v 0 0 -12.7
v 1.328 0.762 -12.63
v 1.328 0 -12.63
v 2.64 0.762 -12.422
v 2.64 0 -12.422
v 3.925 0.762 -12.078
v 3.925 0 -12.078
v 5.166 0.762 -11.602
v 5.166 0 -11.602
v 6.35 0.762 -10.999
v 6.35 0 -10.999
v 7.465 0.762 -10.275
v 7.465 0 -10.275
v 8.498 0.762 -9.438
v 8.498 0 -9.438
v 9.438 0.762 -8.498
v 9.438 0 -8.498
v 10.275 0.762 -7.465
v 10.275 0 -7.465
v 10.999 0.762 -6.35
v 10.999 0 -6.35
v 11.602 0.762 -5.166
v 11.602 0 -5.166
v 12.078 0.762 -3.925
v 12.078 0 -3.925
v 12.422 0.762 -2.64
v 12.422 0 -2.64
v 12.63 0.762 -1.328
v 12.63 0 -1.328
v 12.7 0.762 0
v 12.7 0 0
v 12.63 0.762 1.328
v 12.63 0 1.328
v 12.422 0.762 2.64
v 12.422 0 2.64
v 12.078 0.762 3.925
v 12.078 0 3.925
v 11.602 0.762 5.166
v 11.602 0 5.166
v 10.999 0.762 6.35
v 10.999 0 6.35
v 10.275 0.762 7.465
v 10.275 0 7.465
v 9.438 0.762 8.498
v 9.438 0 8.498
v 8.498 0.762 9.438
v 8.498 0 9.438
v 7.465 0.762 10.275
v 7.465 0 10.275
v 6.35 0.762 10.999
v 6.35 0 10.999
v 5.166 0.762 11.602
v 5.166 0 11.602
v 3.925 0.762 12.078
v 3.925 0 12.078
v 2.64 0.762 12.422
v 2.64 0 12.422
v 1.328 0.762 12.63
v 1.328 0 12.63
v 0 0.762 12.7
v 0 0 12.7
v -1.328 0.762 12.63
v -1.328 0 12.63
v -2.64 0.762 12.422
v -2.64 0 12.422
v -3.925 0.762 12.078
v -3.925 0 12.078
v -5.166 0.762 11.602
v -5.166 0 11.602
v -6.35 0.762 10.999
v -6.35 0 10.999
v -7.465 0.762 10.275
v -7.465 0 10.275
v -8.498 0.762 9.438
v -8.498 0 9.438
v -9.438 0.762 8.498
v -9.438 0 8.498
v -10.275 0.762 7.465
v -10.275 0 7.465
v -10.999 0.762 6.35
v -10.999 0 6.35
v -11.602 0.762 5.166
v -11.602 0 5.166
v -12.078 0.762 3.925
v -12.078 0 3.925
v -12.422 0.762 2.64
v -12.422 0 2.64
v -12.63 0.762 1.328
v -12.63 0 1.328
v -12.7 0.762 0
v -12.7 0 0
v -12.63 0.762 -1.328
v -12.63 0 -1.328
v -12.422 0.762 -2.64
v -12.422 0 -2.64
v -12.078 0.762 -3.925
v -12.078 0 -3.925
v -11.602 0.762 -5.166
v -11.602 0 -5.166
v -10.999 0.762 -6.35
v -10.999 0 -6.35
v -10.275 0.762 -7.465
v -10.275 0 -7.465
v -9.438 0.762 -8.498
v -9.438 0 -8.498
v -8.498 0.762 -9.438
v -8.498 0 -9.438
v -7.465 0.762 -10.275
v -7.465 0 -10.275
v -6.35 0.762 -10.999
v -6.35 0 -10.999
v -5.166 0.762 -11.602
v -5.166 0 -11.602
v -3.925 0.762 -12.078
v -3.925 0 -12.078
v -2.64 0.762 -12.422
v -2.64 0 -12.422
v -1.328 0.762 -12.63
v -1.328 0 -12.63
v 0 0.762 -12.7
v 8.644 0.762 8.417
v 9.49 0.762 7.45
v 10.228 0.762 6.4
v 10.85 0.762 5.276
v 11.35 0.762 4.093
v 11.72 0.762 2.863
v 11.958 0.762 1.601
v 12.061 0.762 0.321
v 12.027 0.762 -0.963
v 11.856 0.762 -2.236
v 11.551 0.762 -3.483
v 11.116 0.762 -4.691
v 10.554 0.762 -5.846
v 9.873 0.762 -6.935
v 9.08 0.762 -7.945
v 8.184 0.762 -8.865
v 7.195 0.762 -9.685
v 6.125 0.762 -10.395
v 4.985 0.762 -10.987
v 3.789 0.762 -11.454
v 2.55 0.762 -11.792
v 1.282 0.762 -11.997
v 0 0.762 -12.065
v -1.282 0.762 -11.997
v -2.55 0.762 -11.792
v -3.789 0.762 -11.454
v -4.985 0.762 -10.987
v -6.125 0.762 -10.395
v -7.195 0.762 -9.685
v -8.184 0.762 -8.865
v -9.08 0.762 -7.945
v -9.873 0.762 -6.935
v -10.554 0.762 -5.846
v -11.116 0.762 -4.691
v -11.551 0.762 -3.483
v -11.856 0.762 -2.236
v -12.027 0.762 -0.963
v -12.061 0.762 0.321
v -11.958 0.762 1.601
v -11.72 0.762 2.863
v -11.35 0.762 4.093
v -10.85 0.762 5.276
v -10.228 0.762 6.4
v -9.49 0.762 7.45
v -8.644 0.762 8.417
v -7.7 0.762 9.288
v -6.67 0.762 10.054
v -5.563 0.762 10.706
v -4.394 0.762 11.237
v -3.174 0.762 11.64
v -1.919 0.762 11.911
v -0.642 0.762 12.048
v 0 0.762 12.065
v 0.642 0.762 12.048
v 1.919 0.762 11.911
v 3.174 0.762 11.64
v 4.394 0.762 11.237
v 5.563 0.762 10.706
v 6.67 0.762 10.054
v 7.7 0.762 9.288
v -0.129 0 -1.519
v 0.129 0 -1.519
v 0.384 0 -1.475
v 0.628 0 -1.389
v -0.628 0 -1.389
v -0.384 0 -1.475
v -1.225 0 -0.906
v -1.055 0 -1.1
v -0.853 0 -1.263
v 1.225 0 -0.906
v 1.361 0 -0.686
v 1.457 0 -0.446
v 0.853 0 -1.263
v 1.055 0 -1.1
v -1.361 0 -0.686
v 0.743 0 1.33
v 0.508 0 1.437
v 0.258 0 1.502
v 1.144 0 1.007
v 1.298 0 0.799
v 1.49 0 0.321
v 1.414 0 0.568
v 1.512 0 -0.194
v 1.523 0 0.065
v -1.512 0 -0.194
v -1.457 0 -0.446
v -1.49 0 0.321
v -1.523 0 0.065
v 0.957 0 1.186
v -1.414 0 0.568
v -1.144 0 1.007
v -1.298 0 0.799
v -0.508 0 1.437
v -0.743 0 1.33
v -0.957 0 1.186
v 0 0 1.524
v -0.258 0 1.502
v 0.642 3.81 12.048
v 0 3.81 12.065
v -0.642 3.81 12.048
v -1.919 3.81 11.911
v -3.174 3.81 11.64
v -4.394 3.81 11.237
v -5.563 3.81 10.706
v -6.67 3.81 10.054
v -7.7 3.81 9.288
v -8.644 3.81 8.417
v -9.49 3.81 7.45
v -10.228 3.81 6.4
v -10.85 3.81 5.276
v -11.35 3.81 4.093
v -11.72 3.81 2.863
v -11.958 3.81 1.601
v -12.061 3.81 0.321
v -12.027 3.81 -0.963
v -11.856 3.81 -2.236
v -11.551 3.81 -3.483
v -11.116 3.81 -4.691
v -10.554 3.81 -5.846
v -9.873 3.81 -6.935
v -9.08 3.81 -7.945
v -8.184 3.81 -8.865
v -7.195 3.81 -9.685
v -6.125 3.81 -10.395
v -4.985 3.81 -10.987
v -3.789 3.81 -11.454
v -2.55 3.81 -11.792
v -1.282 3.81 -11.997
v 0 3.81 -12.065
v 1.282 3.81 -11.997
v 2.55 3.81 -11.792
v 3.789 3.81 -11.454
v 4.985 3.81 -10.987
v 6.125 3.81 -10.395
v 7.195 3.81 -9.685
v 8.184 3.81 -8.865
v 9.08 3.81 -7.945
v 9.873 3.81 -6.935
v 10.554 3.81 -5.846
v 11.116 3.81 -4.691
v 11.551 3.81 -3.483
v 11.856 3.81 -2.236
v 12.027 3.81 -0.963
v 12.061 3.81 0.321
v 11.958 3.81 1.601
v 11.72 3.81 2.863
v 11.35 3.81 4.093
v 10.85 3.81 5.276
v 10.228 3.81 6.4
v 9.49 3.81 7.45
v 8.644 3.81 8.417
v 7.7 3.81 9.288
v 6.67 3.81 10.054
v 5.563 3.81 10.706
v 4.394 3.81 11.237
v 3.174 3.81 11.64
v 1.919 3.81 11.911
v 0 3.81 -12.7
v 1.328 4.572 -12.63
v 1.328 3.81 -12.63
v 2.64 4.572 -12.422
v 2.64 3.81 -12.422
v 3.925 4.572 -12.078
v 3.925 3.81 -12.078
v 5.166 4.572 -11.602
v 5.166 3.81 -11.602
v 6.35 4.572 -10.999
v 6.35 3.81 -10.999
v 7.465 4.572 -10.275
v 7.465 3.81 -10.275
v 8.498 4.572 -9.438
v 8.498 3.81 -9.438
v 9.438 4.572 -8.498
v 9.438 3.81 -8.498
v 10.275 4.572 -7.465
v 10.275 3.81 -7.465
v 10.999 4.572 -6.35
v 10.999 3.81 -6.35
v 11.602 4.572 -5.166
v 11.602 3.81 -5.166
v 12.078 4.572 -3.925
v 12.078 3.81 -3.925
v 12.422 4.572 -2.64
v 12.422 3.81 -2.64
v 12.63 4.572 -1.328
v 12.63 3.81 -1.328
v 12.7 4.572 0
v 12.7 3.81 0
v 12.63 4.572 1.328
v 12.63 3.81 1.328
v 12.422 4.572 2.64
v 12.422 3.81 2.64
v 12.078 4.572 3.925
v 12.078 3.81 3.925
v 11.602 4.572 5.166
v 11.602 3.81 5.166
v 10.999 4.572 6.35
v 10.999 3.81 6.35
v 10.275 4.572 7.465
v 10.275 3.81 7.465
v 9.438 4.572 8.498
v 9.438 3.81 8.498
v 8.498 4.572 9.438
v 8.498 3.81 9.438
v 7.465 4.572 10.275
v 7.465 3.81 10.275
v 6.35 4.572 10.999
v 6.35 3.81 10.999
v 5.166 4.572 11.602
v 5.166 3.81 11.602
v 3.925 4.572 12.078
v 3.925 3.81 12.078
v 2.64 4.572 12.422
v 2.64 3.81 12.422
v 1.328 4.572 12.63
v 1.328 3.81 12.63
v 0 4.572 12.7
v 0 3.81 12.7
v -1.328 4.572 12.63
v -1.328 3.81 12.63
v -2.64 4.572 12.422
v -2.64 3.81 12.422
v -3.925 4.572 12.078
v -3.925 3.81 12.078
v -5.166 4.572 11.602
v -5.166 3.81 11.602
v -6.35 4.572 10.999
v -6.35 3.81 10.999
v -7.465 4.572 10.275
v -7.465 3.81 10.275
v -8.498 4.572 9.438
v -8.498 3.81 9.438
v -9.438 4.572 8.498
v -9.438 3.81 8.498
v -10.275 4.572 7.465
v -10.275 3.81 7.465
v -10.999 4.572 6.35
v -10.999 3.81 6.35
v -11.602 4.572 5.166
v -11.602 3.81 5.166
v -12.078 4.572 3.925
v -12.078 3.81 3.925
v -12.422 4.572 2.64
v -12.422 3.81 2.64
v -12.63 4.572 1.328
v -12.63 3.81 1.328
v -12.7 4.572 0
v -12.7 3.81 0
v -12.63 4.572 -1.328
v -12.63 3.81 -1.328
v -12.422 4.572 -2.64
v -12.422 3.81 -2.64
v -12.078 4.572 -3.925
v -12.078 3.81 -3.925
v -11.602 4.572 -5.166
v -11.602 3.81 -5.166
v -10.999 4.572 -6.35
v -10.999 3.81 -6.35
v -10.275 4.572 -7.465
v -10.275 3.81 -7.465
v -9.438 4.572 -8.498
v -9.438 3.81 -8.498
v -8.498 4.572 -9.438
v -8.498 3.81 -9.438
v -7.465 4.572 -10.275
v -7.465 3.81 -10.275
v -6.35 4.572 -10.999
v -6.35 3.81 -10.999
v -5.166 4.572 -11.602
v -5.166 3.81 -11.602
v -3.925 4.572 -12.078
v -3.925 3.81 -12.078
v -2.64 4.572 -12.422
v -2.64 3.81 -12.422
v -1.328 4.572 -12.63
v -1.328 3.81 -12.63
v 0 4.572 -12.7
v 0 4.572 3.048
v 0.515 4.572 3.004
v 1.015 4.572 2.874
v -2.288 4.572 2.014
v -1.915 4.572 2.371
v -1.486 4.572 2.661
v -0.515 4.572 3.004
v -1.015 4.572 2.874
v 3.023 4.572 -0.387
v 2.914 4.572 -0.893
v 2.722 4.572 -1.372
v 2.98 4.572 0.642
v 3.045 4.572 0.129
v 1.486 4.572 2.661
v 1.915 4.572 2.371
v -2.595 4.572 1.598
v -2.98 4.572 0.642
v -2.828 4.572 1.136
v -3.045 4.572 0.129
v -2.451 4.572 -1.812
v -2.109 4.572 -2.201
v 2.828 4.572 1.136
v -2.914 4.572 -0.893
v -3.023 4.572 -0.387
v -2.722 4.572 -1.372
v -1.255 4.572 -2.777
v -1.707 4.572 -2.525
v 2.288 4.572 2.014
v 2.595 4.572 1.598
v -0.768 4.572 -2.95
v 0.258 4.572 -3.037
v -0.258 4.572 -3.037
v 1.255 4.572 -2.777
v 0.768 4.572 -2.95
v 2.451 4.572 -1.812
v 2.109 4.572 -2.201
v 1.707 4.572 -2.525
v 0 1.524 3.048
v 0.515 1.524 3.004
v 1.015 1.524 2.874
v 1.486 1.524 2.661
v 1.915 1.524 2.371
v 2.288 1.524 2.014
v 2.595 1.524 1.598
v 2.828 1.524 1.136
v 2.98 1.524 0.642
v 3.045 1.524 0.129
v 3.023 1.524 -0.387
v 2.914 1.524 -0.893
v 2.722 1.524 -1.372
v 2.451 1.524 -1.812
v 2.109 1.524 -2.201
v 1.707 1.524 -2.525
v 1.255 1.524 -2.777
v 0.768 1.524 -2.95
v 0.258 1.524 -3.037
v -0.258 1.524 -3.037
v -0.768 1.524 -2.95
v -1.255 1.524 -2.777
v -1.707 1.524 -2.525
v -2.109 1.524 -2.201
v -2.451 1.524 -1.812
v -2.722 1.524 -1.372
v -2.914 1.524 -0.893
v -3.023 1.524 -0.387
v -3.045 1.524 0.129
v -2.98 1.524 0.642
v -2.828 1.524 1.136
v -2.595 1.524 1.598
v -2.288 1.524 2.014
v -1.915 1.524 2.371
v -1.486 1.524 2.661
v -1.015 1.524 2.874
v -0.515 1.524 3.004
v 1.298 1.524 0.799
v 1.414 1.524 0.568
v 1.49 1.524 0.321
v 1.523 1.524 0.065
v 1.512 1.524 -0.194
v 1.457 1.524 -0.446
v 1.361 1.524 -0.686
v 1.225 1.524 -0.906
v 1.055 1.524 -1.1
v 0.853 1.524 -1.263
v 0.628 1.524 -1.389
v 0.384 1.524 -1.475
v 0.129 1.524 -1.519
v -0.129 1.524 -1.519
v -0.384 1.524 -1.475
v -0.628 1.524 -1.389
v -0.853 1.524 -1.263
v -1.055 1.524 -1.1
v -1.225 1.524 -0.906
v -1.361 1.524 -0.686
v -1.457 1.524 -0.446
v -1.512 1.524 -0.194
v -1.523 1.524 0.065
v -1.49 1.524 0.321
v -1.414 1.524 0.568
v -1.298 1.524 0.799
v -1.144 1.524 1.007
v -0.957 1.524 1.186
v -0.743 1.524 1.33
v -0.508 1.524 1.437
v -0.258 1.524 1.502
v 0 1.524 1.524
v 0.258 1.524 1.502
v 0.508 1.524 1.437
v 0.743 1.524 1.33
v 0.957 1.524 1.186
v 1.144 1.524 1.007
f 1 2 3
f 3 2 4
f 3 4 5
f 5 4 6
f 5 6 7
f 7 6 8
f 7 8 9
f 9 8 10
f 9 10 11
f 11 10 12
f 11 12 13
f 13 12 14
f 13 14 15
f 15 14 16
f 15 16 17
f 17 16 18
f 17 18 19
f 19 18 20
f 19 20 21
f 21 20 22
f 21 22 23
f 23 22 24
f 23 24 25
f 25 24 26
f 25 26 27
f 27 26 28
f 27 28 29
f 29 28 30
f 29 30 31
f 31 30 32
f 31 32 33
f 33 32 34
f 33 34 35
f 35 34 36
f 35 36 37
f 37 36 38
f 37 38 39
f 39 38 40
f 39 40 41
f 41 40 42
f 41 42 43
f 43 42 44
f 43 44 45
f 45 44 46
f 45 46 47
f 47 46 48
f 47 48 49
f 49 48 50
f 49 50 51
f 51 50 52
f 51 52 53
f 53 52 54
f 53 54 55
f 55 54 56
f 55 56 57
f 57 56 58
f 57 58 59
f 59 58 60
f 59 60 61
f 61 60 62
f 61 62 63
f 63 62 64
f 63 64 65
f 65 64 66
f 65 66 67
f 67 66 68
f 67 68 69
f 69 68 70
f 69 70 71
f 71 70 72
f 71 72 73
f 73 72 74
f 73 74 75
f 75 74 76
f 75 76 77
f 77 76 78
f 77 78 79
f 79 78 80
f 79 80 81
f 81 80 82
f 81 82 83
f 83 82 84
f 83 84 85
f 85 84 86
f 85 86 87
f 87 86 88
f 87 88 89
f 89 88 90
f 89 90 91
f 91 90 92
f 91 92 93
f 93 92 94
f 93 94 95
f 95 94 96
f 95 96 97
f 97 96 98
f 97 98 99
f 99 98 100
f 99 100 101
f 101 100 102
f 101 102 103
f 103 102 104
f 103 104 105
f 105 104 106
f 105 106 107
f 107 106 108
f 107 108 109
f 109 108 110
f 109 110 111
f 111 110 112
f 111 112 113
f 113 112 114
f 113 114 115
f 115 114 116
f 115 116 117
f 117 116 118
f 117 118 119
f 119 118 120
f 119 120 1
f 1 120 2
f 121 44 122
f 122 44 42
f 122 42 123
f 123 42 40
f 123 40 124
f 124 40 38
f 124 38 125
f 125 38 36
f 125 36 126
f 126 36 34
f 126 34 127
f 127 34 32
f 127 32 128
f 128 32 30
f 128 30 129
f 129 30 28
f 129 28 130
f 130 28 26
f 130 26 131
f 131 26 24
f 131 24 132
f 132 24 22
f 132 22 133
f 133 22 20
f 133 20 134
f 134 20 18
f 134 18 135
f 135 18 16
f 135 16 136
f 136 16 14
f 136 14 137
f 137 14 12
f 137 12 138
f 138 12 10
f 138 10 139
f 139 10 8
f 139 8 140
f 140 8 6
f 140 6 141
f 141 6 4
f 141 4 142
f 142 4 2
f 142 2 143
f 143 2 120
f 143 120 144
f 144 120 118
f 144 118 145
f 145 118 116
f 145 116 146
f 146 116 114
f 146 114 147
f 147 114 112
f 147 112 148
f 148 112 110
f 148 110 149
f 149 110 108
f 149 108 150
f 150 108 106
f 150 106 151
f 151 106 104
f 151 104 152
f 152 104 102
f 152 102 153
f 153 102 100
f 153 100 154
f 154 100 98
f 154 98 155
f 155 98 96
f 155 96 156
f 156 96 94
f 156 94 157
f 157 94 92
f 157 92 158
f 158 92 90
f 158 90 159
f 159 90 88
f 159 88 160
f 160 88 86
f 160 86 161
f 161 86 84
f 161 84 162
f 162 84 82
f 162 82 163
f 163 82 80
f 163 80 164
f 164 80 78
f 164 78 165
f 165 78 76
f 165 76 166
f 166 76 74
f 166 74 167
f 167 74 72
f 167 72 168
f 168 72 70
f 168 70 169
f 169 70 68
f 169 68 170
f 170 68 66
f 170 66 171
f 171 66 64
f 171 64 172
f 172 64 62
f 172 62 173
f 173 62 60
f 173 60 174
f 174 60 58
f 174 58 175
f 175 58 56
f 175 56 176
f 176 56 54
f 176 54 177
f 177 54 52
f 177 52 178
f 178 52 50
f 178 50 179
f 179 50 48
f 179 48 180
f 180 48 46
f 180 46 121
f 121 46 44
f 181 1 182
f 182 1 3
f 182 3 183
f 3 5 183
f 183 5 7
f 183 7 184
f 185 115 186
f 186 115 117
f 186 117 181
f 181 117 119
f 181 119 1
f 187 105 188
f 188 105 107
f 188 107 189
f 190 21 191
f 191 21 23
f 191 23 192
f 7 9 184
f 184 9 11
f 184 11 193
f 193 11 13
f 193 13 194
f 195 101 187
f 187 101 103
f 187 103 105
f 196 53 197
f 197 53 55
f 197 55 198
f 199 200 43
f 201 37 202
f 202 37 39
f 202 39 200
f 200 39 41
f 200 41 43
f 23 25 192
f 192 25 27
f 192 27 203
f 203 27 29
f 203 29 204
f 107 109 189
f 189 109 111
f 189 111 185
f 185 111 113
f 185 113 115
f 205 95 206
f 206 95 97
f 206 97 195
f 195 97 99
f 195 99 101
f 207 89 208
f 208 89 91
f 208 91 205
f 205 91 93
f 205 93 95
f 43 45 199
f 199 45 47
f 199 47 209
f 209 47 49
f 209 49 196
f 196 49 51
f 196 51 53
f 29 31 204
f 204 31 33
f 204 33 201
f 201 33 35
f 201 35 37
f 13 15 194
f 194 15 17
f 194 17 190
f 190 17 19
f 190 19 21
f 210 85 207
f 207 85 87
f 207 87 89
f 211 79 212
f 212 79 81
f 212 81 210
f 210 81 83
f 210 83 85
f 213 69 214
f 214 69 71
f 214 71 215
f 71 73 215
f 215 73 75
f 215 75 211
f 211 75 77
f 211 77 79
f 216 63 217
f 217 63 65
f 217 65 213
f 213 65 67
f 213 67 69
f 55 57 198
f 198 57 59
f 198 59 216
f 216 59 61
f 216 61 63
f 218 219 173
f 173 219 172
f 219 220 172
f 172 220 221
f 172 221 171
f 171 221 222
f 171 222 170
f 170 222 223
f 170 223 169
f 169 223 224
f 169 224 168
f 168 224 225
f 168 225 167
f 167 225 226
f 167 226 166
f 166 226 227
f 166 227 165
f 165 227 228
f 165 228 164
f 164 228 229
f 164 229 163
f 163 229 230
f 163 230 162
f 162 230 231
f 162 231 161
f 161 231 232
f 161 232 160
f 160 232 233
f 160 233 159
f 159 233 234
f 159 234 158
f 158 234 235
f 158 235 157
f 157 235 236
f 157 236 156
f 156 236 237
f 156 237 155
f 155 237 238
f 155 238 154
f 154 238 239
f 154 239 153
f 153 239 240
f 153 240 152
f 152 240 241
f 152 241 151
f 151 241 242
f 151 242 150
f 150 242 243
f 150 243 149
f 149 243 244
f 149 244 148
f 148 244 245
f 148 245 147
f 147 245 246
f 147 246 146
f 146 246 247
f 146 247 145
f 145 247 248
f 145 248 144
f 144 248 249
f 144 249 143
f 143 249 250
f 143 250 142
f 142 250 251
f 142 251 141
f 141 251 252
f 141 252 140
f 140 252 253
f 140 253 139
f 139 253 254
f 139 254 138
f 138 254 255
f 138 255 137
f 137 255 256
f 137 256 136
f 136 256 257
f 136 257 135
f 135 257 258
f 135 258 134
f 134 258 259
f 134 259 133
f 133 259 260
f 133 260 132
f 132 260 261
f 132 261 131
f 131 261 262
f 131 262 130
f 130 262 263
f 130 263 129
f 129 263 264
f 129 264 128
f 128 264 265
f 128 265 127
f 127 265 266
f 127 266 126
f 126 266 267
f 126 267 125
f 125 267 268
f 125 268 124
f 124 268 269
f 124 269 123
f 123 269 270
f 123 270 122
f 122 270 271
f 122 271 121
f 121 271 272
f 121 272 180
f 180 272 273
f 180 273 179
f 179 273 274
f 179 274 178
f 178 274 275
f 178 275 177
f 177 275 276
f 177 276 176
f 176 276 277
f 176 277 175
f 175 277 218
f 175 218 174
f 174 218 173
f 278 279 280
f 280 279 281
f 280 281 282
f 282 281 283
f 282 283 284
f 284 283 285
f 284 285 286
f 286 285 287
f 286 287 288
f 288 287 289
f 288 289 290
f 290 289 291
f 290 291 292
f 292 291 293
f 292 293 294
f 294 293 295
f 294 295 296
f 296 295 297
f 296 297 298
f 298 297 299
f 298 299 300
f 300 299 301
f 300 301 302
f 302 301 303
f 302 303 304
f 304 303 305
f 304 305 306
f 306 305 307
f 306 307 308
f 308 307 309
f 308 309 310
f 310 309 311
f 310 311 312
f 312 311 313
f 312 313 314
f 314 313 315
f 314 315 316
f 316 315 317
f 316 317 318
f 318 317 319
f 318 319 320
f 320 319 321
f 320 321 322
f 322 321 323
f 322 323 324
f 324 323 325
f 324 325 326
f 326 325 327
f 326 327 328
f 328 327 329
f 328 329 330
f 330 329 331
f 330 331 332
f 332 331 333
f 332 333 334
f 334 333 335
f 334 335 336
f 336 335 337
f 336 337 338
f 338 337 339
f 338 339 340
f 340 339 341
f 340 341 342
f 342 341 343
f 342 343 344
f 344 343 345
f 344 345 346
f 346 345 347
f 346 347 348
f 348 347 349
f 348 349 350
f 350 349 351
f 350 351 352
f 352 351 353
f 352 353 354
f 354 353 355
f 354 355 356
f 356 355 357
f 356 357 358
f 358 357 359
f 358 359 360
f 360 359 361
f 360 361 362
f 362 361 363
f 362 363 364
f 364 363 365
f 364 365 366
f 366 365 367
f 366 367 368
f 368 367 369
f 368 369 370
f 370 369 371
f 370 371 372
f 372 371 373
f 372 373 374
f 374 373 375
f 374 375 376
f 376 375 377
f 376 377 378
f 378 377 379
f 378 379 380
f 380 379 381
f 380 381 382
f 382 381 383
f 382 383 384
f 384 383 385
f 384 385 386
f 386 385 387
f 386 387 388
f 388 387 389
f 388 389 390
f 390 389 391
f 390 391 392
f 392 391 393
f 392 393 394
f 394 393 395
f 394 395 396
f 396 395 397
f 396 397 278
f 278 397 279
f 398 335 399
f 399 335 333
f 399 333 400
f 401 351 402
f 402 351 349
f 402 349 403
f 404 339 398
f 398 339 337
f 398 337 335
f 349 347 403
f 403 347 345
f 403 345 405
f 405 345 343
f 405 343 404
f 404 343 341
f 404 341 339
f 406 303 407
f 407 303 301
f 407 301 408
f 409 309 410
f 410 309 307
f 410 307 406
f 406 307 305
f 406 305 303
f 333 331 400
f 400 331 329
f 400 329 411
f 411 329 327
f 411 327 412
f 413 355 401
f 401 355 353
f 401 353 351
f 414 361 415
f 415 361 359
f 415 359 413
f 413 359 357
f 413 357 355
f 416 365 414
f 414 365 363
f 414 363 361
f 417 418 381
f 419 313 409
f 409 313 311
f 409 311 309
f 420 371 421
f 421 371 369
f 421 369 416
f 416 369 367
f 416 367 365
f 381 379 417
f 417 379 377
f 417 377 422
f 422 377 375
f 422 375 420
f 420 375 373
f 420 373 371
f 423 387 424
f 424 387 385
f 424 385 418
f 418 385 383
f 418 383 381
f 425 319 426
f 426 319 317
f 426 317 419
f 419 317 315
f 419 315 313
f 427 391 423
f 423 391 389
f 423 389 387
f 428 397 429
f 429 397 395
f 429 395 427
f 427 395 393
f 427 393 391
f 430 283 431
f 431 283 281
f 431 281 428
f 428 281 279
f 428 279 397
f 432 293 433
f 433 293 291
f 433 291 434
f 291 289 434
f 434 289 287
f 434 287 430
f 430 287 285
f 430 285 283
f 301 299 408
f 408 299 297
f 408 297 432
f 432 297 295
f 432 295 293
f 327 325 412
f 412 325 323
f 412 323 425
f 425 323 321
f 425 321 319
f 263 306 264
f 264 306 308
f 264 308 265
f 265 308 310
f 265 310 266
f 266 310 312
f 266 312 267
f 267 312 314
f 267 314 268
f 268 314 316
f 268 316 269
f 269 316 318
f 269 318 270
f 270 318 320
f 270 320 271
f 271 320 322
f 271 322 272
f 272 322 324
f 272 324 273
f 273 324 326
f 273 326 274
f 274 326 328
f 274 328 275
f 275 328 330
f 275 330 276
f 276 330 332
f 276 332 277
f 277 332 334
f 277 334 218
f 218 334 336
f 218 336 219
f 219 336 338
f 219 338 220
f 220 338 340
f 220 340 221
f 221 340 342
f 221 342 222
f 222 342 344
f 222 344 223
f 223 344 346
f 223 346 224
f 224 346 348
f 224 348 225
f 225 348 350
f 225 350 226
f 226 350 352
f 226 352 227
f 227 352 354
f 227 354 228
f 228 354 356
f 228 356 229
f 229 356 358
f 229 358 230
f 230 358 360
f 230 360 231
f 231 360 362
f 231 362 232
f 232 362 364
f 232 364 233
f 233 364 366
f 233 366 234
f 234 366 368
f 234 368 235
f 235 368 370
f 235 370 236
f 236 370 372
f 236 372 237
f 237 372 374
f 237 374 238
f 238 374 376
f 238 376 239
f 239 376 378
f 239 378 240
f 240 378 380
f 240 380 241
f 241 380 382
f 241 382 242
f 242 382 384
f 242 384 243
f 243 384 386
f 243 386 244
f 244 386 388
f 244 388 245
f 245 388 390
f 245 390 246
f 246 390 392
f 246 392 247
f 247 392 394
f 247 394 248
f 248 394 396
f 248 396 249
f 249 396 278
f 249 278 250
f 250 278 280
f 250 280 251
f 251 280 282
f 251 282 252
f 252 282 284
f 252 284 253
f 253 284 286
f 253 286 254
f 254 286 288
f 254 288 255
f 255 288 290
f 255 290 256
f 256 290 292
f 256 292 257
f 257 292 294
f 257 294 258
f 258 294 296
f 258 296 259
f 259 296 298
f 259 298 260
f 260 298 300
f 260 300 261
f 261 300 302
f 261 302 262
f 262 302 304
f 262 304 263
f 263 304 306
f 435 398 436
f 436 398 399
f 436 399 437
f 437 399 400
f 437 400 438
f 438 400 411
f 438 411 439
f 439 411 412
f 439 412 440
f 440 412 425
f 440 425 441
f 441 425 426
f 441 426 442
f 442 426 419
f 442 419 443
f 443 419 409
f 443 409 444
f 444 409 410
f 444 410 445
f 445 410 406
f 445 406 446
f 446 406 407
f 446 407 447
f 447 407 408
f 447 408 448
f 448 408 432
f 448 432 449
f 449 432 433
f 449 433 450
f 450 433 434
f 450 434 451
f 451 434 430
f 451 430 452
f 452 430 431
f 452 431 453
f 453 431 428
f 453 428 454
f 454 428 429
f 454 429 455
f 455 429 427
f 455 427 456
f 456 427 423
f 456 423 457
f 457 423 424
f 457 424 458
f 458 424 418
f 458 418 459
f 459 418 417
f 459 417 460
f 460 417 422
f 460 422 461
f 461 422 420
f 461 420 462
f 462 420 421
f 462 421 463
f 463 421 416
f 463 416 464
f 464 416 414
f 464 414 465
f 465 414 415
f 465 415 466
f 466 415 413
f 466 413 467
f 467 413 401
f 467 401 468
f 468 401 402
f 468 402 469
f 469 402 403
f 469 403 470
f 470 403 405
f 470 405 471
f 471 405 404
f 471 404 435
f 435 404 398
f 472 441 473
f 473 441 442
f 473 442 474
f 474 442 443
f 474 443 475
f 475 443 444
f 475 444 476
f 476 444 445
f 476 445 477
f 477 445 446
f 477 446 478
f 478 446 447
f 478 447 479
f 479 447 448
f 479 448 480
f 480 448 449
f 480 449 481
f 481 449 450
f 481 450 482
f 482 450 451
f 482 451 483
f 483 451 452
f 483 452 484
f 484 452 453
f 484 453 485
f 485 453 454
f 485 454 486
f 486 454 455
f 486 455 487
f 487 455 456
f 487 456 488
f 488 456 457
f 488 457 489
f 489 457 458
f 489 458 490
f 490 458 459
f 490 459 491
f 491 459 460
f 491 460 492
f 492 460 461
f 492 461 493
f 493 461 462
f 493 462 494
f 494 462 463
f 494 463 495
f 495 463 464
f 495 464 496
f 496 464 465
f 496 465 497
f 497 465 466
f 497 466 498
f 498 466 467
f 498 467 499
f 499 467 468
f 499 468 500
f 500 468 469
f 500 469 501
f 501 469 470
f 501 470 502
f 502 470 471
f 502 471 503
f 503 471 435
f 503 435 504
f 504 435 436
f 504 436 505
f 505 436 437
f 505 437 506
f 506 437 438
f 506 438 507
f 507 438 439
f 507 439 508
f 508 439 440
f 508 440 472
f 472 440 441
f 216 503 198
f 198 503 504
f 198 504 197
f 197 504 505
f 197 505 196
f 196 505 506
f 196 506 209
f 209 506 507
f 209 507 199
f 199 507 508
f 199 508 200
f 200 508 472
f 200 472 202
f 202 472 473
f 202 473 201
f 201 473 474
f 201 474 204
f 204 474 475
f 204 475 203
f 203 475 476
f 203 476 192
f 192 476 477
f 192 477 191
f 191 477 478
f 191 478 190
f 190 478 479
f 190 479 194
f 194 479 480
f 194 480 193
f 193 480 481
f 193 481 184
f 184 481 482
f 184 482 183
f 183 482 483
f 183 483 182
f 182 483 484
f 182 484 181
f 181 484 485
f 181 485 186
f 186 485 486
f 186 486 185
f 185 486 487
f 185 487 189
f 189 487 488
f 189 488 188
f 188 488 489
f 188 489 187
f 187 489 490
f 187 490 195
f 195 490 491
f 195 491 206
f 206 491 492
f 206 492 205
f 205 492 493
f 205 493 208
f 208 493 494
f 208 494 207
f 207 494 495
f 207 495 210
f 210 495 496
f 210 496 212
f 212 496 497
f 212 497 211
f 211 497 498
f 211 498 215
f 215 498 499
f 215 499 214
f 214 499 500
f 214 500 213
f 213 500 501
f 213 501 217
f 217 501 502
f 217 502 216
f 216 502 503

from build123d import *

# Parameters (mm, degrees)
SKETCH1_R           = 12.7
BOSS_EXTRUDE1_DEPTH = 0.762
SKETCH2_R           = 12.065
BOSS_EXTRUDE2_DEPTH = 3.048
SKETCH3_R           = 12.7
BOSS_EXTRUDE3_DEPTH = 0.762
SKETCH4_R           = 3.048
CUT_EXTRUDE1_DEPTH  = 3.048
SKETCH5_R           = 1.524
CUT_EXTRUDE2_DEPTH  = 2.524


with BuildPart() as part:
    # Sketch1 → Boss-Extrude1 (new body)
    with BuildSketch(Plane(origin=(0, 0, 0), x_dir=(1, 0, 0), z_dir=(0, 1, 0))):
        Circle(SKETCH1_R)
    extrude(amount=BOSS_EXTRUDE1_DEPTH)

    # Sketch2 → Boss-Extrude2 (add)
    with BuildSketch(Plane(origin=(0, 0.762, 0), x_dir=(1, 0, 0), z_dir=(0, 1, 0))):
        Circle(SKETCH2_R)
    extrude(amount=BOSS_EXTRUDE2_DEPTH)

    # Sketch3 → Boss-Extrude3 (add)
    with BuildSketch(Plane(origin=(0, 3.81, 0), x_dir=(1, 0, 0), z_dir=(0, 1, 0))):
        Circle(SKETCH3_R)
    extrude(amount=BOSS_EXTRUDE3_DEPTH)

    # Sketch4 → Cut-Extrude1 (cut)
    with BuildSketch(Plane(origin=(0, 4.572, 0), x_dir=(1, 0, 0), z_dir=(0, 1, 0))):
        Circle(SKETCH4_R)
    extrude(amount=-CUT_EXTRUDE1_DEPTH, mode=Mode.SUBTRACT)

    # Sketch5 → Cut-Extrude2 (cut, through all)
    with BuildSketch(Plane(origin=(0, 1.524, 0), x_dir=(1, 0, 0), z_dir=(0, 1, 0))):
        Circle(SKETCH5_R)
    extrude(amount=-CUT_EXTRUDE2_DEPTH, mode=Mode.SUBTRACT)


solid = part.part
